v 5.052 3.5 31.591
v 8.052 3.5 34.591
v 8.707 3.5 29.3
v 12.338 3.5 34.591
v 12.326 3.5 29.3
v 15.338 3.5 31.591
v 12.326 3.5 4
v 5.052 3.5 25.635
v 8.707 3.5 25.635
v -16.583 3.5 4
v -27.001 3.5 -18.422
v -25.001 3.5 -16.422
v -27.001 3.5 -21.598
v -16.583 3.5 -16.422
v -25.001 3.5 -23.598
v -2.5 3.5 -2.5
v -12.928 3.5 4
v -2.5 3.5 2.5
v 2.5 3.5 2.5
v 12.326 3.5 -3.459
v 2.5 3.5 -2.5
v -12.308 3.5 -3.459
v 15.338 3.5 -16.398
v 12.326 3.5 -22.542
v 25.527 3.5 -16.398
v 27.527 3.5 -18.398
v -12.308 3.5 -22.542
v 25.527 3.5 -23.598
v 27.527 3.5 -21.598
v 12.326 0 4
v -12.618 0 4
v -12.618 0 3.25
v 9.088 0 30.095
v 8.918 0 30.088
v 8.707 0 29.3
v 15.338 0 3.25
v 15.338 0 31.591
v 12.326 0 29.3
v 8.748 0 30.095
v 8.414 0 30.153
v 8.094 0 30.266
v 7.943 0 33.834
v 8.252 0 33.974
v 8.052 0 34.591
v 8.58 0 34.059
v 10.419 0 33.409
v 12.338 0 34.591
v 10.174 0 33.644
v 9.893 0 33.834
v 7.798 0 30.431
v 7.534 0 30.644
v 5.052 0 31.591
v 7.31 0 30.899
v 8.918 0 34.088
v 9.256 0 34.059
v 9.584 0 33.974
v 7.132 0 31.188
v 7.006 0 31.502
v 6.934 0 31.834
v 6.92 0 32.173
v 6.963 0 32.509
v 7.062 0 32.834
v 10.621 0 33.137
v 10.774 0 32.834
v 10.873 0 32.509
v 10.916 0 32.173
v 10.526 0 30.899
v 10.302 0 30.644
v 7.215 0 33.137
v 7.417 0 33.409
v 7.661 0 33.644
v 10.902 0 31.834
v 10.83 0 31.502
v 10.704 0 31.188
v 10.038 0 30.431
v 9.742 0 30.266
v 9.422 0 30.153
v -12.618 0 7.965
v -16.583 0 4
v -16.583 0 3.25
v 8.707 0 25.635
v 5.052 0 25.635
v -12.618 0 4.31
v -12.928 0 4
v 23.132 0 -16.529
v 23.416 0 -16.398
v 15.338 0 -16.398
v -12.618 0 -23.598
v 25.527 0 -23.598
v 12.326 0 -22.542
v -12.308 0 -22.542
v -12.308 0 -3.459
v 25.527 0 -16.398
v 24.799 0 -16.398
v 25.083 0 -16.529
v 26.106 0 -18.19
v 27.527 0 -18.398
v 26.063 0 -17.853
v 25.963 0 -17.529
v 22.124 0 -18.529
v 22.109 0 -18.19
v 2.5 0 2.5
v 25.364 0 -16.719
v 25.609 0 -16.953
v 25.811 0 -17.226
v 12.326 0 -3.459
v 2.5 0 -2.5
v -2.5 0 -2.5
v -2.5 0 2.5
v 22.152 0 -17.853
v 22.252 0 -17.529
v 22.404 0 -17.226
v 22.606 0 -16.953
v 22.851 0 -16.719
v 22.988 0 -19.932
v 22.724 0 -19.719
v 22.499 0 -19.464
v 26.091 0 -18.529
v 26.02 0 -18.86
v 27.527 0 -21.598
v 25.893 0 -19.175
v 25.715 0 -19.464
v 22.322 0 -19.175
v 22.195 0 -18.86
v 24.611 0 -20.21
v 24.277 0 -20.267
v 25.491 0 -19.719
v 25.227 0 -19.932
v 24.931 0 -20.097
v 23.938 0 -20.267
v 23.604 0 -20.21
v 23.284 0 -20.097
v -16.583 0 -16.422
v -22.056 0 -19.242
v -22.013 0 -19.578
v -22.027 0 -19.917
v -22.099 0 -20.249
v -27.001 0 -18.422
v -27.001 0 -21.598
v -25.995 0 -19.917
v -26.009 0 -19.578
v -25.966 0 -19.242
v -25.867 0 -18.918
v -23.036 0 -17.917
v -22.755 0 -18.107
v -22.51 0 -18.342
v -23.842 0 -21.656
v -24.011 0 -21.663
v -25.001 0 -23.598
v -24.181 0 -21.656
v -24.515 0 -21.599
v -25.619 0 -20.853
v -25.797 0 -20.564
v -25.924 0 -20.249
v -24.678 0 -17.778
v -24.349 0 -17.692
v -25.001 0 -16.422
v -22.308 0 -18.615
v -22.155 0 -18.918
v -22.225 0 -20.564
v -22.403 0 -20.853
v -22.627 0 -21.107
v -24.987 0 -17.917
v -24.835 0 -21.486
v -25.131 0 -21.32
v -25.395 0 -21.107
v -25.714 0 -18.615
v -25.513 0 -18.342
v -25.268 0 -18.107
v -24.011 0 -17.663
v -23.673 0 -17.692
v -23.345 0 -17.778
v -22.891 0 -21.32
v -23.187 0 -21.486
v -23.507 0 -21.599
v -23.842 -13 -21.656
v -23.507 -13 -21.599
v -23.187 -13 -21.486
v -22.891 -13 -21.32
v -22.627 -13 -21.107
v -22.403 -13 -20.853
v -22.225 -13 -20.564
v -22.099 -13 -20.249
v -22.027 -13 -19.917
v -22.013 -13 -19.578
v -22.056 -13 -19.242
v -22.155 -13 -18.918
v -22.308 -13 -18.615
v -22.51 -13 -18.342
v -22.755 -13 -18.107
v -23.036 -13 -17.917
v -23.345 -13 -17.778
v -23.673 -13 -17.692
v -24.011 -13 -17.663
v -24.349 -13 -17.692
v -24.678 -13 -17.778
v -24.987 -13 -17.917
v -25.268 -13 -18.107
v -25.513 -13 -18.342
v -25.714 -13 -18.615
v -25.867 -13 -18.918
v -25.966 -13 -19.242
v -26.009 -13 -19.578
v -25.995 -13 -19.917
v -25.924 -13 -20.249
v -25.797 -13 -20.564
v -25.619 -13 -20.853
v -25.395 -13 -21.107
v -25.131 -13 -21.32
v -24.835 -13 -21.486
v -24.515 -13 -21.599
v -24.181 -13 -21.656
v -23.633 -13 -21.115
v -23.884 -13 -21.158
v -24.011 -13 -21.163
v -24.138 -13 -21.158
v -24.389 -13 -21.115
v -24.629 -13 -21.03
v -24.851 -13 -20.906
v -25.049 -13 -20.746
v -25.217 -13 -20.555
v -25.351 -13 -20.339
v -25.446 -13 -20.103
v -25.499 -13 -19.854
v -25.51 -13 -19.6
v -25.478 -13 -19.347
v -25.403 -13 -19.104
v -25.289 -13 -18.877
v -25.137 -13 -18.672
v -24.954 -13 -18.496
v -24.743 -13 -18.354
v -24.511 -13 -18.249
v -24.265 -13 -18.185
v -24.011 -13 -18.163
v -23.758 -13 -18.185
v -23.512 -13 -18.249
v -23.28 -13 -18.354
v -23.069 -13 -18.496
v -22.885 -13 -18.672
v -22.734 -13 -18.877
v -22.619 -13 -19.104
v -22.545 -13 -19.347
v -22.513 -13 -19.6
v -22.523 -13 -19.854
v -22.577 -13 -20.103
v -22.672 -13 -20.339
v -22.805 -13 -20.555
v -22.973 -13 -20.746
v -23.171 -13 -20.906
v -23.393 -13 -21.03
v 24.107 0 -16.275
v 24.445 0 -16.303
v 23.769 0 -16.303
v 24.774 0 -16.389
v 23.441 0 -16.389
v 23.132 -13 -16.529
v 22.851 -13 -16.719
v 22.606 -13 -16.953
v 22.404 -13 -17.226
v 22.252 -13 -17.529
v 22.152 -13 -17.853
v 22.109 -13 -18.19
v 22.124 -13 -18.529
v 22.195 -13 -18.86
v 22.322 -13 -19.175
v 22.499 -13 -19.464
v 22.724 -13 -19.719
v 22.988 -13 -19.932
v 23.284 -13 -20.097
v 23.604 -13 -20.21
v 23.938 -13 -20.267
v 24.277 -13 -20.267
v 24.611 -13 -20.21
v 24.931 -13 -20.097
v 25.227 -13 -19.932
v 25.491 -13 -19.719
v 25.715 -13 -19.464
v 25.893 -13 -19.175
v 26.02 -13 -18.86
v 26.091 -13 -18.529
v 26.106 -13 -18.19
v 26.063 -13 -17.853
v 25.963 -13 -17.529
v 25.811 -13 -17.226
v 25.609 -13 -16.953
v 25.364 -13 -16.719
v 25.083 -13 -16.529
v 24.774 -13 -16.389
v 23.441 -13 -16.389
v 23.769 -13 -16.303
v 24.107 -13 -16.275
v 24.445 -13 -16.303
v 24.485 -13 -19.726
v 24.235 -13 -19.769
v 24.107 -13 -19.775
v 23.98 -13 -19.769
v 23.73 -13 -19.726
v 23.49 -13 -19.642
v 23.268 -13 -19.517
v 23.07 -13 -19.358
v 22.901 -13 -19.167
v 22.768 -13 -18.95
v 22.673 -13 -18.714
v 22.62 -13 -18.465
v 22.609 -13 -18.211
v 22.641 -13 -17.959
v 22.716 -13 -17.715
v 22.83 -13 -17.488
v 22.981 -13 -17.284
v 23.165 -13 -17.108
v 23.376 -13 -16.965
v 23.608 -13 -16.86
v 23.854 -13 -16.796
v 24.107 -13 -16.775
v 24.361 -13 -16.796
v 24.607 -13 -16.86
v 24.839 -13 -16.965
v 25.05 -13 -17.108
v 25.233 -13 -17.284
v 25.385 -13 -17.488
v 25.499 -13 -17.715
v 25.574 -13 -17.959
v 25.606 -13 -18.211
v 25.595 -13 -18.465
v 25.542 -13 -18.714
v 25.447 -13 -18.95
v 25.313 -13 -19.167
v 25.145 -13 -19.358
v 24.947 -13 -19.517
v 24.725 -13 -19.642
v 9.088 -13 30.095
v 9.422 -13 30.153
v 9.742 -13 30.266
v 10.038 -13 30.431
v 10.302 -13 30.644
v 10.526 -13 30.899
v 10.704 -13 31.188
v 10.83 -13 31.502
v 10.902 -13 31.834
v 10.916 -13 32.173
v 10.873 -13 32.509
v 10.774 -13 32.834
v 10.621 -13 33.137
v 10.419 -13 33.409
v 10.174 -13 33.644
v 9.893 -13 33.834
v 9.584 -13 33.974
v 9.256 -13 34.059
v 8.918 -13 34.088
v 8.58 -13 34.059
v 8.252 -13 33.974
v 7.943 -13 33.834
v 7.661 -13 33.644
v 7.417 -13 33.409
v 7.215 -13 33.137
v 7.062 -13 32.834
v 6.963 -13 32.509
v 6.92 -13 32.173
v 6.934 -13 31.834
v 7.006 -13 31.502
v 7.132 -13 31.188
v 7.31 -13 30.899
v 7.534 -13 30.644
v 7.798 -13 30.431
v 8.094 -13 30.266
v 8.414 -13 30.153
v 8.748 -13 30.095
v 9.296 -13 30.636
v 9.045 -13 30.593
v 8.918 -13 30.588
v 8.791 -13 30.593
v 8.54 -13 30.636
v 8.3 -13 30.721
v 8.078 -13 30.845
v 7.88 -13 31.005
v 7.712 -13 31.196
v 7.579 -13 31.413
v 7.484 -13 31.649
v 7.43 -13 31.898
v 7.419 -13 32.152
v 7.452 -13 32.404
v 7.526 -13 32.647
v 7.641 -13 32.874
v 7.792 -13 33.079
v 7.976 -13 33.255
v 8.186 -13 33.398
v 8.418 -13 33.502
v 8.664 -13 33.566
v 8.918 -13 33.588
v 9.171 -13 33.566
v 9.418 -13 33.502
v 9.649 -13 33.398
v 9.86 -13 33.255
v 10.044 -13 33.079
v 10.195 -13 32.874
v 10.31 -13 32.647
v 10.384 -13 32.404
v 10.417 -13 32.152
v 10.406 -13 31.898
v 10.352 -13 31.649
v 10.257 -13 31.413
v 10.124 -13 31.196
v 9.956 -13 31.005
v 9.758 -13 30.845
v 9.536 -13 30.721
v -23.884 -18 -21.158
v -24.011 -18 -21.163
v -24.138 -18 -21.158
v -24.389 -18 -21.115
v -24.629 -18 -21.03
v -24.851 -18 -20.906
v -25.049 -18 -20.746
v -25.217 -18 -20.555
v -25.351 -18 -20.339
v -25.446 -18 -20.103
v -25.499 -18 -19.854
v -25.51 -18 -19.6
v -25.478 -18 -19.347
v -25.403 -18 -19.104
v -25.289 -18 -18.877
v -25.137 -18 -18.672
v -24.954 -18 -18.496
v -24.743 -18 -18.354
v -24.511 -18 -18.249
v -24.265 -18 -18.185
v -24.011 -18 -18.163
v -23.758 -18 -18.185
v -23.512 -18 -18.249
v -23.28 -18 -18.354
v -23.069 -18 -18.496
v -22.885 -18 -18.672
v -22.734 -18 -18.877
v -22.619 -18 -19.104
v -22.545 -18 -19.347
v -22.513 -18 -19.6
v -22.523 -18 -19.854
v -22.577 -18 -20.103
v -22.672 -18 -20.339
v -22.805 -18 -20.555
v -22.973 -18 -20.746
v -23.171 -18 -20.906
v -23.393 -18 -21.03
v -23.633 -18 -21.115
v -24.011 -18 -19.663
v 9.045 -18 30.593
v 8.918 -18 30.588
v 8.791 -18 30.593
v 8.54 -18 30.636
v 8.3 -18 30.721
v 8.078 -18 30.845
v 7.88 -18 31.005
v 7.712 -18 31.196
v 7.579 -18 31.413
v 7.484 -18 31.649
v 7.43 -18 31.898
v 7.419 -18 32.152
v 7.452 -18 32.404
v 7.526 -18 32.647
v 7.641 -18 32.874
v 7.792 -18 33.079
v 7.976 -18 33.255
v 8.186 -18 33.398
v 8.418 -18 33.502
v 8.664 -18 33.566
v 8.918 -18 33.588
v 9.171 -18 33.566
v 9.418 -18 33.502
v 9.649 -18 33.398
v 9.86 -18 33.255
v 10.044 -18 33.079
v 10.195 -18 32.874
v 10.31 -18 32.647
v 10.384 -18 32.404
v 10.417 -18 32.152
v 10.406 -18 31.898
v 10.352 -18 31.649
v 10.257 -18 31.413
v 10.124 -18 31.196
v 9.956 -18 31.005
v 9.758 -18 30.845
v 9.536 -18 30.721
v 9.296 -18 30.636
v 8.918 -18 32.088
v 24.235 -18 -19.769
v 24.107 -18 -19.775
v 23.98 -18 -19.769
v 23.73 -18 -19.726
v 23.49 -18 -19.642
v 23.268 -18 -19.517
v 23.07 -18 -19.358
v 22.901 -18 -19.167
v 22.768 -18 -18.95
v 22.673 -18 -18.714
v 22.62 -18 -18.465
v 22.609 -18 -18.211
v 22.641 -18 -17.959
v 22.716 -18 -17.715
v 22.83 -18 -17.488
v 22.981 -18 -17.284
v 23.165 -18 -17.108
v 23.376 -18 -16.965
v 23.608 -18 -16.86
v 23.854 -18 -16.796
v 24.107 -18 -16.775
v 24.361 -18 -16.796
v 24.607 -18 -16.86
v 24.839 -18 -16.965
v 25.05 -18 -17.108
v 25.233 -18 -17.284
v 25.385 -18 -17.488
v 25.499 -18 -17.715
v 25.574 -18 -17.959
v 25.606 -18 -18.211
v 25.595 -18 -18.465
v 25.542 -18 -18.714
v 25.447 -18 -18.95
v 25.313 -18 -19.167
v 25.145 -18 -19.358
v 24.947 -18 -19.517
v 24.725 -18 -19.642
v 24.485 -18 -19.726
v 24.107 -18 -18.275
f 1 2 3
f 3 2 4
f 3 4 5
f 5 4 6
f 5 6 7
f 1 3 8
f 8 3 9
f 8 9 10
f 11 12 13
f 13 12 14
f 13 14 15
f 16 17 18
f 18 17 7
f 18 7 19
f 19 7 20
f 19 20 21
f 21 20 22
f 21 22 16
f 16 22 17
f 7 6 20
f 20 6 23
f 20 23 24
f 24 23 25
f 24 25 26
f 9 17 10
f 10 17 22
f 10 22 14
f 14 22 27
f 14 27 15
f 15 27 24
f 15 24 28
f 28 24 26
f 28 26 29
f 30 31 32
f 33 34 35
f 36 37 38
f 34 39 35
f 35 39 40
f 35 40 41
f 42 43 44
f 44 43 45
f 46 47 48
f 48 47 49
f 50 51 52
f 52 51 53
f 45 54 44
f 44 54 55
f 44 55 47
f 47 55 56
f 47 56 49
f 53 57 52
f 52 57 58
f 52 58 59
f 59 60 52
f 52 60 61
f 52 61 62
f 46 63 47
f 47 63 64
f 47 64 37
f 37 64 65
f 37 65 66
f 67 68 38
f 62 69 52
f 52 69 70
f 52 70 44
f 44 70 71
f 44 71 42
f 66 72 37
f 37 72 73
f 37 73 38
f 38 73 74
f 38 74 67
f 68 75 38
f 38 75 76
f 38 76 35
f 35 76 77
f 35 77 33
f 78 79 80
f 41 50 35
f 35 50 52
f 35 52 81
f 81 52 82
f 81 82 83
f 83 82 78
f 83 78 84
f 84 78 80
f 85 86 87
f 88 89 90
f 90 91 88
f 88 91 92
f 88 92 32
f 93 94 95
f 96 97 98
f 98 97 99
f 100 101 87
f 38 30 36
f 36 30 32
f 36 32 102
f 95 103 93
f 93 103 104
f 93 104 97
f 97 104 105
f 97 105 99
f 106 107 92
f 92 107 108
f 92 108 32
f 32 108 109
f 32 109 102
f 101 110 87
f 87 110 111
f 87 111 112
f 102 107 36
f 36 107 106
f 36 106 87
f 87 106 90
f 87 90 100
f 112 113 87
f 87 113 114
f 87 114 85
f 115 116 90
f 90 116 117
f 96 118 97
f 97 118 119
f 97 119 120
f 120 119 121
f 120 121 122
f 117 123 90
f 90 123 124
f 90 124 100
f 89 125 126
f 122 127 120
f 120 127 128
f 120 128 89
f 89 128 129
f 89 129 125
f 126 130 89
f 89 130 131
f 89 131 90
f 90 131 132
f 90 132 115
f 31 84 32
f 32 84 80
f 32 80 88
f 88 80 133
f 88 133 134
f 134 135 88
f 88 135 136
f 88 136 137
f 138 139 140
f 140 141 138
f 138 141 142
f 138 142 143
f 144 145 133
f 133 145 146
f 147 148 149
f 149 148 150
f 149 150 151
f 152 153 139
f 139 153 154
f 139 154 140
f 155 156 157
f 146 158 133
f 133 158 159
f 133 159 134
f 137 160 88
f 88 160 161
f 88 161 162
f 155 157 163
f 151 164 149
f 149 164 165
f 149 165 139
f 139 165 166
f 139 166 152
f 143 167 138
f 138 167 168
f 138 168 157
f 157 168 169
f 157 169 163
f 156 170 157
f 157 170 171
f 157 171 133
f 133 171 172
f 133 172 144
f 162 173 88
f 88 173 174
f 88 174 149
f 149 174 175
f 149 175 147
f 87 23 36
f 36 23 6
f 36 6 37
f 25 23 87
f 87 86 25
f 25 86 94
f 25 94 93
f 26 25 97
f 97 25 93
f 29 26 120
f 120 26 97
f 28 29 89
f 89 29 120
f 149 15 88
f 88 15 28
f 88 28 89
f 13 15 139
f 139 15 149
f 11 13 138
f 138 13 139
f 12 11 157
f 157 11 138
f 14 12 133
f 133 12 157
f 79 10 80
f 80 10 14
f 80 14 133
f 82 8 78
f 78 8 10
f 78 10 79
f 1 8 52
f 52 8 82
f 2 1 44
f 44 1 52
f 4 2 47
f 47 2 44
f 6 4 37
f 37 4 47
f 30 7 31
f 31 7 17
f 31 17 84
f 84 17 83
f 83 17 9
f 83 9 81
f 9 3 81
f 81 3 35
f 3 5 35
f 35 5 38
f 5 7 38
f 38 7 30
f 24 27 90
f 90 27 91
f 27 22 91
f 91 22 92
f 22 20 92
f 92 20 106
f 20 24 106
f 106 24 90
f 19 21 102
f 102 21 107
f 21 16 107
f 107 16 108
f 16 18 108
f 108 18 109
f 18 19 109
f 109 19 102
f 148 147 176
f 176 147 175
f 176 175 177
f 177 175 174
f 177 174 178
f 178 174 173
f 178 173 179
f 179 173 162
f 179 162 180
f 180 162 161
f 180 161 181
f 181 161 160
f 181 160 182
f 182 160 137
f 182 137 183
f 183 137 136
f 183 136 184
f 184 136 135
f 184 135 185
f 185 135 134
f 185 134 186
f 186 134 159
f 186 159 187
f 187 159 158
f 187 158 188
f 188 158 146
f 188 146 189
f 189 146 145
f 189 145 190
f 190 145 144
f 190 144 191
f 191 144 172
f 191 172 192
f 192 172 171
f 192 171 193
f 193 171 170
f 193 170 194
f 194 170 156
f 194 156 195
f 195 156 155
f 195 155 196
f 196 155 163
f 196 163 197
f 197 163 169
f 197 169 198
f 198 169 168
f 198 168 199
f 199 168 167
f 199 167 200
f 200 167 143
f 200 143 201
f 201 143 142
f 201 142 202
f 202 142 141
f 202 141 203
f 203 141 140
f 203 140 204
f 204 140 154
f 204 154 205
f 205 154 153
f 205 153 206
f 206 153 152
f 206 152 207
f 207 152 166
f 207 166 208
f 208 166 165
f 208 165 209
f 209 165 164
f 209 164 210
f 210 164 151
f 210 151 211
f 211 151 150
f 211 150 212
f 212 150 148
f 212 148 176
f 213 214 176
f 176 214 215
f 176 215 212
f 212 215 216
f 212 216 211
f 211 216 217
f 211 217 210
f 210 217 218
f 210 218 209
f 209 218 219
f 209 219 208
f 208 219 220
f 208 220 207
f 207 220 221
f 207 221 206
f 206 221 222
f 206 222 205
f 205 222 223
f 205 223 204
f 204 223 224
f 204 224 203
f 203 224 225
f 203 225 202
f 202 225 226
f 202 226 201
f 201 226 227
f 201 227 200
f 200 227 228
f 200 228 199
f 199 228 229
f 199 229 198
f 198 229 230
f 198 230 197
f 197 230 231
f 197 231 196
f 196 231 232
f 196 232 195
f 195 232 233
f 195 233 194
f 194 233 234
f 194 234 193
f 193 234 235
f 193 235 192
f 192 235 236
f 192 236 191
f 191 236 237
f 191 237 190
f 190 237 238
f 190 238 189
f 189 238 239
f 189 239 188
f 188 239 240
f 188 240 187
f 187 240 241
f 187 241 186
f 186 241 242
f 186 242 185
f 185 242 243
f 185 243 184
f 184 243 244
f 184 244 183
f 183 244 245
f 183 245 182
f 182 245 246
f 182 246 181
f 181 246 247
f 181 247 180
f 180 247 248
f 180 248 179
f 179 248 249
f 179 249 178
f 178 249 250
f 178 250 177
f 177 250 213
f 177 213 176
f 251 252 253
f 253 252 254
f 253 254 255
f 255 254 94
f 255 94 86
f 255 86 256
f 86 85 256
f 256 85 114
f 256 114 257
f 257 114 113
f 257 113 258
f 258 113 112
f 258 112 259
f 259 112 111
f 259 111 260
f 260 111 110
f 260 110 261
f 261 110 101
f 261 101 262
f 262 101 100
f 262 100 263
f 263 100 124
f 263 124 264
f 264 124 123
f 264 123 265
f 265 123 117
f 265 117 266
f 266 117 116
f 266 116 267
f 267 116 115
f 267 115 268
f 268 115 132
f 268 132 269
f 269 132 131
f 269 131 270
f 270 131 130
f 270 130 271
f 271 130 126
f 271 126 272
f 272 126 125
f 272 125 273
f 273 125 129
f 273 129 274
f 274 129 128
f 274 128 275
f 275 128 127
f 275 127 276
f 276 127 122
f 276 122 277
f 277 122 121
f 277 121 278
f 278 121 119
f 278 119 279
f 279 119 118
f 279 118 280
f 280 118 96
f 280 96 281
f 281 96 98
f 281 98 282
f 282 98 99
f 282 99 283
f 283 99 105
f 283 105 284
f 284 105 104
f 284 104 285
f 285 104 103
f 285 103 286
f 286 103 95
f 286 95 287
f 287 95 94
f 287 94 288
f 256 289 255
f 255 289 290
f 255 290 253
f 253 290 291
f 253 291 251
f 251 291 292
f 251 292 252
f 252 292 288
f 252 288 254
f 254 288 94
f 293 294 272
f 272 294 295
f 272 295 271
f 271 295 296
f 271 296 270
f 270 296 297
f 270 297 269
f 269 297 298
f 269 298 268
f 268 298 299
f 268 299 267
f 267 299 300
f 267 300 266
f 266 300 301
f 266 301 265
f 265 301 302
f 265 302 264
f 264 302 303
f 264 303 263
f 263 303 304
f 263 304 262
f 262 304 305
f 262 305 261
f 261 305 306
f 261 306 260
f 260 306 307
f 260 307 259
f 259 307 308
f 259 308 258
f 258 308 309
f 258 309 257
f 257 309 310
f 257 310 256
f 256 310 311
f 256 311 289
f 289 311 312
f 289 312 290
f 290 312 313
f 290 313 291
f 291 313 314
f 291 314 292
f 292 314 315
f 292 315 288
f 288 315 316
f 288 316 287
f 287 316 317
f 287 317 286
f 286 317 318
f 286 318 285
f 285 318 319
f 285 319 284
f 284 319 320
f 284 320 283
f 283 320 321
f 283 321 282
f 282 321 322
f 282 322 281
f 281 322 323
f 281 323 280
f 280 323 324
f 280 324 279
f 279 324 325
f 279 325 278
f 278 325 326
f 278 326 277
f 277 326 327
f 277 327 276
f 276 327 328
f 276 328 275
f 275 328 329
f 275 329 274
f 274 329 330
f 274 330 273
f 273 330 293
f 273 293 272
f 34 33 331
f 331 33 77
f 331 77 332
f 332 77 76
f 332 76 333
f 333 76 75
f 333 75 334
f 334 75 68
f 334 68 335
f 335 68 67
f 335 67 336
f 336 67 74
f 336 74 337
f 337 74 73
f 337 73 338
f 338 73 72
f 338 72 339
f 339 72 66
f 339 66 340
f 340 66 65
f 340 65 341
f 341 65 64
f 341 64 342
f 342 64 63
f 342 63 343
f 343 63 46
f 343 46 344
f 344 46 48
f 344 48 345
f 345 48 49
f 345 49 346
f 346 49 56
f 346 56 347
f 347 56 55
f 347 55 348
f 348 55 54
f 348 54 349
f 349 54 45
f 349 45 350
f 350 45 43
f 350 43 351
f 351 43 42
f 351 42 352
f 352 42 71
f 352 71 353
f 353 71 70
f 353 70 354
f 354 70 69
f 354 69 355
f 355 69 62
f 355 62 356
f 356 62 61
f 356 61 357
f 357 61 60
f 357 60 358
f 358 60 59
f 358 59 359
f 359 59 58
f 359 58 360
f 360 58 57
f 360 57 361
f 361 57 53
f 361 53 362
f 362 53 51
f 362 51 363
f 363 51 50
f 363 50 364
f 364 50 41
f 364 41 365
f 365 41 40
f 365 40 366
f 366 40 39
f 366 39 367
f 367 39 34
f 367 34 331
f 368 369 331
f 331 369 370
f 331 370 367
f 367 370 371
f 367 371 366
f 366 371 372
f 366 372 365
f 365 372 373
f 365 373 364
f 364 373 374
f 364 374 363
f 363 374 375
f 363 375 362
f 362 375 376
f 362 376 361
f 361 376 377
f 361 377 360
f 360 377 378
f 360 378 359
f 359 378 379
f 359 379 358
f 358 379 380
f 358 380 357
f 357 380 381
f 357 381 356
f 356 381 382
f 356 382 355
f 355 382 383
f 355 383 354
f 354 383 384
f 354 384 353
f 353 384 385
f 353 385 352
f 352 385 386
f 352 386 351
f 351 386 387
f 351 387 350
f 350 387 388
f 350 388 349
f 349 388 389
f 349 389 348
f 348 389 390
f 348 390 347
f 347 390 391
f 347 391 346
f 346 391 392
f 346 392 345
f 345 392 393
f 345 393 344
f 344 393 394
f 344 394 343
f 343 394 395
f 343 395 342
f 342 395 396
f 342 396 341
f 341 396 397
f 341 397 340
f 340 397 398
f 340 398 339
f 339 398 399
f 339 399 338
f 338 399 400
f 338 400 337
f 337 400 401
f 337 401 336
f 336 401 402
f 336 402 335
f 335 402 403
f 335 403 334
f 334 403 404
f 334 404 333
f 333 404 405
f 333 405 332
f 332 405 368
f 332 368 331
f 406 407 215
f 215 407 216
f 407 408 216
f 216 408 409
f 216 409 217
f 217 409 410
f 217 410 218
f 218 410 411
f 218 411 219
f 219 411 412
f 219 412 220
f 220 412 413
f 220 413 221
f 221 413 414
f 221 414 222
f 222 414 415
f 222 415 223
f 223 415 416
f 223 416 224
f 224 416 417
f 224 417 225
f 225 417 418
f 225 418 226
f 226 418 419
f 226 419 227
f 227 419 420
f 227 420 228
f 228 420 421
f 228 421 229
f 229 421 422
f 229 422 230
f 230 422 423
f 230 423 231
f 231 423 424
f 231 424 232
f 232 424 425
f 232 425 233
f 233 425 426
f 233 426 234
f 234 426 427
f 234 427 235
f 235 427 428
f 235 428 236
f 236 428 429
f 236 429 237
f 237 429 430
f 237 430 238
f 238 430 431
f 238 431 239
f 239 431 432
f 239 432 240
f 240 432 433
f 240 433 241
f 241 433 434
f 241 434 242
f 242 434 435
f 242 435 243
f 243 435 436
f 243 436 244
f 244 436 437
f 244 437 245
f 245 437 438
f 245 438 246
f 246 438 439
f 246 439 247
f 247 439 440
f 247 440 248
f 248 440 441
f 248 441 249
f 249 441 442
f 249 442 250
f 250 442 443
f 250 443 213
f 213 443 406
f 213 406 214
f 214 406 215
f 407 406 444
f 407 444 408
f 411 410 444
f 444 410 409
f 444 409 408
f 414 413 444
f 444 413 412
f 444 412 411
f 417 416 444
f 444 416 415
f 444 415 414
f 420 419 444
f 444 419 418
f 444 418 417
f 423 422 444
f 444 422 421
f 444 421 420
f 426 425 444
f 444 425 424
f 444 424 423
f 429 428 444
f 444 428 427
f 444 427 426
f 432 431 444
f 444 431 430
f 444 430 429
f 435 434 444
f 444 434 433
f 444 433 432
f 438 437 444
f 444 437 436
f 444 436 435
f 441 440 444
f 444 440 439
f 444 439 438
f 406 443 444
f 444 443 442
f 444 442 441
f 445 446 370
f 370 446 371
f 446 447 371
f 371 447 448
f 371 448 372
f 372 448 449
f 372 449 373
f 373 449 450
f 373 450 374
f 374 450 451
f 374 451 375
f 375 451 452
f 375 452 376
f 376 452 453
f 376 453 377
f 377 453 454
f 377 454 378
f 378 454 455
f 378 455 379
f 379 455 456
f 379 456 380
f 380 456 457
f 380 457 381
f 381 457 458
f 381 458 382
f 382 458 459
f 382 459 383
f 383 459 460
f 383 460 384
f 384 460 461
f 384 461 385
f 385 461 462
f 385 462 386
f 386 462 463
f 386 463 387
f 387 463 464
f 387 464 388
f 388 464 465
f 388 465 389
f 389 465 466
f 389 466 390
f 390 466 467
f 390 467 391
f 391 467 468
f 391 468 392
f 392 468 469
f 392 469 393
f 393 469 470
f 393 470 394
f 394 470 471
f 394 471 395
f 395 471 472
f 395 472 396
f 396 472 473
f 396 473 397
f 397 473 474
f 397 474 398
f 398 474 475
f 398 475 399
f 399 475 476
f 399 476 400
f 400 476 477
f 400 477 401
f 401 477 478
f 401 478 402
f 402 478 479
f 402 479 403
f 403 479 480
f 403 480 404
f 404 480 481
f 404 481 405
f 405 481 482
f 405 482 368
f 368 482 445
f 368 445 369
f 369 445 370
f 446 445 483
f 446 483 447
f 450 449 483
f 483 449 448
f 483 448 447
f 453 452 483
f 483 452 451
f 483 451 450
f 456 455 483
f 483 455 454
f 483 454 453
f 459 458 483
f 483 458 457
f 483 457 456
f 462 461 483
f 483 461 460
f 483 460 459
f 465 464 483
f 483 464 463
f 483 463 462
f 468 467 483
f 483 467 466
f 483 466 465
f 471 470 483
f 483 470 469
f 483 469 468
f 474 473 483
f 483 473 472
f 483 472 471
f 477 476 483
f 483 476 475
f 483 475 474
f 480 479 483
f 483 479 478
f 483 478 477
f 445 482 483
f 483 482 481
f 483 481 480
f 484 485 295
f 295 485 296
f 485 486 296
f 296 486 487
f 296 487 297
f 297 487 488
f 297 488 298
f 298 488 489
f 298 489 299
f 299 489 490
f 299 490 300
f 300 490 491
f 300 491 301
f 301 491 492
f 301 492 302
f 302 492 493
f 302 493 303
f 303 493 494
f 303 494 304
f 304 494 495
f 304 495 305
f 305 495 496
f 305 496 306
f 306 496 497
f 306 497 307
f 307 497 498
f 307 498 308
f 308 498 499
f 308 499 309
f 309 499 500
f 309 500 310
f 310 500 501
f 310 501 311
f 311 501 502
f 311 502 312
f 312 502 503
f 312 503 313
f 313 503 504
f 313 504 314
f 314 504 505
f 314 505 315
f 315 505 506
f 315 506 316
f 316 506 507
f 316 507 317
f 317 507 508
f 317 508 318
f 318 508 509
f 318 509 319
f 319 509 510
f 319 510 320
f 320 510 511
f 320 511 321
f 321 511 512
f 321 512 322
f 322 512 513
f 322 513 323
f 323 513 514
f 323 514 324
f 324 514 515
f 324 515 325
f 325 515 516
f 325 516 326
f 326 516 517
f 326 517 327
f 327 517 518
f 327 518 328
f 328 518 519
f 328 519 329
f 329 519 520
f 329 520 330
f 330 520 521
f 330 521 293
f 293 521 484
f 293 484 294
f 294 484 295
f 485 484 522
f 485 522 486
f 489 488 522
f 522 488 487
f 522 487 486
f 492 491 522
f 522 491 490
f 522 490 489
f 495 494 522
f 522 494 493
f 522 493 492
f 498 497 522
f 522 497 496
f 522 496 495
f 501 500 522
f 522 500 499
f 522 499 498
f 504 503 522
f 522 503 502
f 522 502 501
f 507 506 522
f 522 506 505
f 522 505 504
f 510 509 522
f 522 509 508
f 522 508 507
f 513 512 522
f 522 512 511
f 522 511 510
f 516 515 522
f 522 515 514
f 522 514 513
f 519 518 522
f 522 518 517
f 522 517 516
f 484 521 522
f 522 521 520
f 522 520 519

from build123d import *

# Parameters (mm, degrees)
SKETCH4_W           = 24.633837396
SKETCH4_H           = 19.082768461
SKETCH4_W_2         = 5
SKETCH4_H_2         = 5
MAINBRACKET_DEPTH   = 3.5
SKETCH3_R           = 2
BOSS_EXTRUDE2_DEPTH = 13
SKETCH6_R           = 1.5
BOSS_EXTRUDE3_DEPTH = 5


with BuildPart() as part:
    # Sketch4 → MainBracket (new body)
    with BuildSketch(Plane(origin=(0, 0, 0), x_dir=(1, 0, 0), z_dir=(0, 1, 0))):
        Polygon((-25.001052975, 23.597895529), (25.52718448, 23.597895529), (27.52718448, 21.597895529), (27.52718448, 18.397895529), (25.52718448, 16.397895529), (15.338231538, 16.397895529), (15.338231538, -31.590979949), (12.338231538, -34.590979949), (8.051942307, -34.590979949), (5.051942307, -31.590979949), (5.051942307, -25.634971446), (-16.583029139, -4), (-16.583029139, 16.421906692), (-25.001052975, 16.421906692), (-27.001052975, 18.421906692), (-27.001052975, 21.597895529), align=None)
        with Locations((0.008956485, 13.000441896)):
            Rectangle(SKETCH4_W, SKETCH4_H, mode=Mode.SUBTRACT)
        Polygon((-12.927683275, -4), (8.707288171, -25.634971446), (8.707288171, -29.300035445), (12.325875183, -29.300035445), (12.325875183, -4), align=None, mode=Mode.SUBTRACT)
        Rectangle(SKETCH4_W_2, SKETCH4_H_2, mode=Mode.SUBTRACT)
    extrude(amount=MAINBRACKET_DEPTH)

    # Sketch3 → Boss-Extrude2 (add)
    with BuildSketch(Plane(origin=(0, 0, 0), x_dir=(1, 0, 0), z_dir=(0, 1, 0))):
        with Locations((-24.011269627, 19.663273311)):
            Circle(SKETCH3_R)
        with Locations((24.107482847, 18.27469294)):
            Circle(SKETCH3_R)
        with Locations((8.917908931, -32.088026328)):
            Circle(SKETCH3_R)
    extrude(amount=-BOSS_EXTRUDE2_DEPTH)

    # Sketch6 → Boss-Extrude3 (add)
    with BuildSketch(Plane.XZ.offset(13)):
        with Locations((-24.011269627, -19.663273311)):
            Circle(SKETCH6_R)
        with Locations((8.917908931, 32.088026328)):
            Circle(SKETCH6_R)
        with Locations((24.107482847, -18.27469294)):
            Circle(SKETCH6_R)
    extrude(amount=BOSS_EXTRUDE3_DEPTH)


solid = part.part
